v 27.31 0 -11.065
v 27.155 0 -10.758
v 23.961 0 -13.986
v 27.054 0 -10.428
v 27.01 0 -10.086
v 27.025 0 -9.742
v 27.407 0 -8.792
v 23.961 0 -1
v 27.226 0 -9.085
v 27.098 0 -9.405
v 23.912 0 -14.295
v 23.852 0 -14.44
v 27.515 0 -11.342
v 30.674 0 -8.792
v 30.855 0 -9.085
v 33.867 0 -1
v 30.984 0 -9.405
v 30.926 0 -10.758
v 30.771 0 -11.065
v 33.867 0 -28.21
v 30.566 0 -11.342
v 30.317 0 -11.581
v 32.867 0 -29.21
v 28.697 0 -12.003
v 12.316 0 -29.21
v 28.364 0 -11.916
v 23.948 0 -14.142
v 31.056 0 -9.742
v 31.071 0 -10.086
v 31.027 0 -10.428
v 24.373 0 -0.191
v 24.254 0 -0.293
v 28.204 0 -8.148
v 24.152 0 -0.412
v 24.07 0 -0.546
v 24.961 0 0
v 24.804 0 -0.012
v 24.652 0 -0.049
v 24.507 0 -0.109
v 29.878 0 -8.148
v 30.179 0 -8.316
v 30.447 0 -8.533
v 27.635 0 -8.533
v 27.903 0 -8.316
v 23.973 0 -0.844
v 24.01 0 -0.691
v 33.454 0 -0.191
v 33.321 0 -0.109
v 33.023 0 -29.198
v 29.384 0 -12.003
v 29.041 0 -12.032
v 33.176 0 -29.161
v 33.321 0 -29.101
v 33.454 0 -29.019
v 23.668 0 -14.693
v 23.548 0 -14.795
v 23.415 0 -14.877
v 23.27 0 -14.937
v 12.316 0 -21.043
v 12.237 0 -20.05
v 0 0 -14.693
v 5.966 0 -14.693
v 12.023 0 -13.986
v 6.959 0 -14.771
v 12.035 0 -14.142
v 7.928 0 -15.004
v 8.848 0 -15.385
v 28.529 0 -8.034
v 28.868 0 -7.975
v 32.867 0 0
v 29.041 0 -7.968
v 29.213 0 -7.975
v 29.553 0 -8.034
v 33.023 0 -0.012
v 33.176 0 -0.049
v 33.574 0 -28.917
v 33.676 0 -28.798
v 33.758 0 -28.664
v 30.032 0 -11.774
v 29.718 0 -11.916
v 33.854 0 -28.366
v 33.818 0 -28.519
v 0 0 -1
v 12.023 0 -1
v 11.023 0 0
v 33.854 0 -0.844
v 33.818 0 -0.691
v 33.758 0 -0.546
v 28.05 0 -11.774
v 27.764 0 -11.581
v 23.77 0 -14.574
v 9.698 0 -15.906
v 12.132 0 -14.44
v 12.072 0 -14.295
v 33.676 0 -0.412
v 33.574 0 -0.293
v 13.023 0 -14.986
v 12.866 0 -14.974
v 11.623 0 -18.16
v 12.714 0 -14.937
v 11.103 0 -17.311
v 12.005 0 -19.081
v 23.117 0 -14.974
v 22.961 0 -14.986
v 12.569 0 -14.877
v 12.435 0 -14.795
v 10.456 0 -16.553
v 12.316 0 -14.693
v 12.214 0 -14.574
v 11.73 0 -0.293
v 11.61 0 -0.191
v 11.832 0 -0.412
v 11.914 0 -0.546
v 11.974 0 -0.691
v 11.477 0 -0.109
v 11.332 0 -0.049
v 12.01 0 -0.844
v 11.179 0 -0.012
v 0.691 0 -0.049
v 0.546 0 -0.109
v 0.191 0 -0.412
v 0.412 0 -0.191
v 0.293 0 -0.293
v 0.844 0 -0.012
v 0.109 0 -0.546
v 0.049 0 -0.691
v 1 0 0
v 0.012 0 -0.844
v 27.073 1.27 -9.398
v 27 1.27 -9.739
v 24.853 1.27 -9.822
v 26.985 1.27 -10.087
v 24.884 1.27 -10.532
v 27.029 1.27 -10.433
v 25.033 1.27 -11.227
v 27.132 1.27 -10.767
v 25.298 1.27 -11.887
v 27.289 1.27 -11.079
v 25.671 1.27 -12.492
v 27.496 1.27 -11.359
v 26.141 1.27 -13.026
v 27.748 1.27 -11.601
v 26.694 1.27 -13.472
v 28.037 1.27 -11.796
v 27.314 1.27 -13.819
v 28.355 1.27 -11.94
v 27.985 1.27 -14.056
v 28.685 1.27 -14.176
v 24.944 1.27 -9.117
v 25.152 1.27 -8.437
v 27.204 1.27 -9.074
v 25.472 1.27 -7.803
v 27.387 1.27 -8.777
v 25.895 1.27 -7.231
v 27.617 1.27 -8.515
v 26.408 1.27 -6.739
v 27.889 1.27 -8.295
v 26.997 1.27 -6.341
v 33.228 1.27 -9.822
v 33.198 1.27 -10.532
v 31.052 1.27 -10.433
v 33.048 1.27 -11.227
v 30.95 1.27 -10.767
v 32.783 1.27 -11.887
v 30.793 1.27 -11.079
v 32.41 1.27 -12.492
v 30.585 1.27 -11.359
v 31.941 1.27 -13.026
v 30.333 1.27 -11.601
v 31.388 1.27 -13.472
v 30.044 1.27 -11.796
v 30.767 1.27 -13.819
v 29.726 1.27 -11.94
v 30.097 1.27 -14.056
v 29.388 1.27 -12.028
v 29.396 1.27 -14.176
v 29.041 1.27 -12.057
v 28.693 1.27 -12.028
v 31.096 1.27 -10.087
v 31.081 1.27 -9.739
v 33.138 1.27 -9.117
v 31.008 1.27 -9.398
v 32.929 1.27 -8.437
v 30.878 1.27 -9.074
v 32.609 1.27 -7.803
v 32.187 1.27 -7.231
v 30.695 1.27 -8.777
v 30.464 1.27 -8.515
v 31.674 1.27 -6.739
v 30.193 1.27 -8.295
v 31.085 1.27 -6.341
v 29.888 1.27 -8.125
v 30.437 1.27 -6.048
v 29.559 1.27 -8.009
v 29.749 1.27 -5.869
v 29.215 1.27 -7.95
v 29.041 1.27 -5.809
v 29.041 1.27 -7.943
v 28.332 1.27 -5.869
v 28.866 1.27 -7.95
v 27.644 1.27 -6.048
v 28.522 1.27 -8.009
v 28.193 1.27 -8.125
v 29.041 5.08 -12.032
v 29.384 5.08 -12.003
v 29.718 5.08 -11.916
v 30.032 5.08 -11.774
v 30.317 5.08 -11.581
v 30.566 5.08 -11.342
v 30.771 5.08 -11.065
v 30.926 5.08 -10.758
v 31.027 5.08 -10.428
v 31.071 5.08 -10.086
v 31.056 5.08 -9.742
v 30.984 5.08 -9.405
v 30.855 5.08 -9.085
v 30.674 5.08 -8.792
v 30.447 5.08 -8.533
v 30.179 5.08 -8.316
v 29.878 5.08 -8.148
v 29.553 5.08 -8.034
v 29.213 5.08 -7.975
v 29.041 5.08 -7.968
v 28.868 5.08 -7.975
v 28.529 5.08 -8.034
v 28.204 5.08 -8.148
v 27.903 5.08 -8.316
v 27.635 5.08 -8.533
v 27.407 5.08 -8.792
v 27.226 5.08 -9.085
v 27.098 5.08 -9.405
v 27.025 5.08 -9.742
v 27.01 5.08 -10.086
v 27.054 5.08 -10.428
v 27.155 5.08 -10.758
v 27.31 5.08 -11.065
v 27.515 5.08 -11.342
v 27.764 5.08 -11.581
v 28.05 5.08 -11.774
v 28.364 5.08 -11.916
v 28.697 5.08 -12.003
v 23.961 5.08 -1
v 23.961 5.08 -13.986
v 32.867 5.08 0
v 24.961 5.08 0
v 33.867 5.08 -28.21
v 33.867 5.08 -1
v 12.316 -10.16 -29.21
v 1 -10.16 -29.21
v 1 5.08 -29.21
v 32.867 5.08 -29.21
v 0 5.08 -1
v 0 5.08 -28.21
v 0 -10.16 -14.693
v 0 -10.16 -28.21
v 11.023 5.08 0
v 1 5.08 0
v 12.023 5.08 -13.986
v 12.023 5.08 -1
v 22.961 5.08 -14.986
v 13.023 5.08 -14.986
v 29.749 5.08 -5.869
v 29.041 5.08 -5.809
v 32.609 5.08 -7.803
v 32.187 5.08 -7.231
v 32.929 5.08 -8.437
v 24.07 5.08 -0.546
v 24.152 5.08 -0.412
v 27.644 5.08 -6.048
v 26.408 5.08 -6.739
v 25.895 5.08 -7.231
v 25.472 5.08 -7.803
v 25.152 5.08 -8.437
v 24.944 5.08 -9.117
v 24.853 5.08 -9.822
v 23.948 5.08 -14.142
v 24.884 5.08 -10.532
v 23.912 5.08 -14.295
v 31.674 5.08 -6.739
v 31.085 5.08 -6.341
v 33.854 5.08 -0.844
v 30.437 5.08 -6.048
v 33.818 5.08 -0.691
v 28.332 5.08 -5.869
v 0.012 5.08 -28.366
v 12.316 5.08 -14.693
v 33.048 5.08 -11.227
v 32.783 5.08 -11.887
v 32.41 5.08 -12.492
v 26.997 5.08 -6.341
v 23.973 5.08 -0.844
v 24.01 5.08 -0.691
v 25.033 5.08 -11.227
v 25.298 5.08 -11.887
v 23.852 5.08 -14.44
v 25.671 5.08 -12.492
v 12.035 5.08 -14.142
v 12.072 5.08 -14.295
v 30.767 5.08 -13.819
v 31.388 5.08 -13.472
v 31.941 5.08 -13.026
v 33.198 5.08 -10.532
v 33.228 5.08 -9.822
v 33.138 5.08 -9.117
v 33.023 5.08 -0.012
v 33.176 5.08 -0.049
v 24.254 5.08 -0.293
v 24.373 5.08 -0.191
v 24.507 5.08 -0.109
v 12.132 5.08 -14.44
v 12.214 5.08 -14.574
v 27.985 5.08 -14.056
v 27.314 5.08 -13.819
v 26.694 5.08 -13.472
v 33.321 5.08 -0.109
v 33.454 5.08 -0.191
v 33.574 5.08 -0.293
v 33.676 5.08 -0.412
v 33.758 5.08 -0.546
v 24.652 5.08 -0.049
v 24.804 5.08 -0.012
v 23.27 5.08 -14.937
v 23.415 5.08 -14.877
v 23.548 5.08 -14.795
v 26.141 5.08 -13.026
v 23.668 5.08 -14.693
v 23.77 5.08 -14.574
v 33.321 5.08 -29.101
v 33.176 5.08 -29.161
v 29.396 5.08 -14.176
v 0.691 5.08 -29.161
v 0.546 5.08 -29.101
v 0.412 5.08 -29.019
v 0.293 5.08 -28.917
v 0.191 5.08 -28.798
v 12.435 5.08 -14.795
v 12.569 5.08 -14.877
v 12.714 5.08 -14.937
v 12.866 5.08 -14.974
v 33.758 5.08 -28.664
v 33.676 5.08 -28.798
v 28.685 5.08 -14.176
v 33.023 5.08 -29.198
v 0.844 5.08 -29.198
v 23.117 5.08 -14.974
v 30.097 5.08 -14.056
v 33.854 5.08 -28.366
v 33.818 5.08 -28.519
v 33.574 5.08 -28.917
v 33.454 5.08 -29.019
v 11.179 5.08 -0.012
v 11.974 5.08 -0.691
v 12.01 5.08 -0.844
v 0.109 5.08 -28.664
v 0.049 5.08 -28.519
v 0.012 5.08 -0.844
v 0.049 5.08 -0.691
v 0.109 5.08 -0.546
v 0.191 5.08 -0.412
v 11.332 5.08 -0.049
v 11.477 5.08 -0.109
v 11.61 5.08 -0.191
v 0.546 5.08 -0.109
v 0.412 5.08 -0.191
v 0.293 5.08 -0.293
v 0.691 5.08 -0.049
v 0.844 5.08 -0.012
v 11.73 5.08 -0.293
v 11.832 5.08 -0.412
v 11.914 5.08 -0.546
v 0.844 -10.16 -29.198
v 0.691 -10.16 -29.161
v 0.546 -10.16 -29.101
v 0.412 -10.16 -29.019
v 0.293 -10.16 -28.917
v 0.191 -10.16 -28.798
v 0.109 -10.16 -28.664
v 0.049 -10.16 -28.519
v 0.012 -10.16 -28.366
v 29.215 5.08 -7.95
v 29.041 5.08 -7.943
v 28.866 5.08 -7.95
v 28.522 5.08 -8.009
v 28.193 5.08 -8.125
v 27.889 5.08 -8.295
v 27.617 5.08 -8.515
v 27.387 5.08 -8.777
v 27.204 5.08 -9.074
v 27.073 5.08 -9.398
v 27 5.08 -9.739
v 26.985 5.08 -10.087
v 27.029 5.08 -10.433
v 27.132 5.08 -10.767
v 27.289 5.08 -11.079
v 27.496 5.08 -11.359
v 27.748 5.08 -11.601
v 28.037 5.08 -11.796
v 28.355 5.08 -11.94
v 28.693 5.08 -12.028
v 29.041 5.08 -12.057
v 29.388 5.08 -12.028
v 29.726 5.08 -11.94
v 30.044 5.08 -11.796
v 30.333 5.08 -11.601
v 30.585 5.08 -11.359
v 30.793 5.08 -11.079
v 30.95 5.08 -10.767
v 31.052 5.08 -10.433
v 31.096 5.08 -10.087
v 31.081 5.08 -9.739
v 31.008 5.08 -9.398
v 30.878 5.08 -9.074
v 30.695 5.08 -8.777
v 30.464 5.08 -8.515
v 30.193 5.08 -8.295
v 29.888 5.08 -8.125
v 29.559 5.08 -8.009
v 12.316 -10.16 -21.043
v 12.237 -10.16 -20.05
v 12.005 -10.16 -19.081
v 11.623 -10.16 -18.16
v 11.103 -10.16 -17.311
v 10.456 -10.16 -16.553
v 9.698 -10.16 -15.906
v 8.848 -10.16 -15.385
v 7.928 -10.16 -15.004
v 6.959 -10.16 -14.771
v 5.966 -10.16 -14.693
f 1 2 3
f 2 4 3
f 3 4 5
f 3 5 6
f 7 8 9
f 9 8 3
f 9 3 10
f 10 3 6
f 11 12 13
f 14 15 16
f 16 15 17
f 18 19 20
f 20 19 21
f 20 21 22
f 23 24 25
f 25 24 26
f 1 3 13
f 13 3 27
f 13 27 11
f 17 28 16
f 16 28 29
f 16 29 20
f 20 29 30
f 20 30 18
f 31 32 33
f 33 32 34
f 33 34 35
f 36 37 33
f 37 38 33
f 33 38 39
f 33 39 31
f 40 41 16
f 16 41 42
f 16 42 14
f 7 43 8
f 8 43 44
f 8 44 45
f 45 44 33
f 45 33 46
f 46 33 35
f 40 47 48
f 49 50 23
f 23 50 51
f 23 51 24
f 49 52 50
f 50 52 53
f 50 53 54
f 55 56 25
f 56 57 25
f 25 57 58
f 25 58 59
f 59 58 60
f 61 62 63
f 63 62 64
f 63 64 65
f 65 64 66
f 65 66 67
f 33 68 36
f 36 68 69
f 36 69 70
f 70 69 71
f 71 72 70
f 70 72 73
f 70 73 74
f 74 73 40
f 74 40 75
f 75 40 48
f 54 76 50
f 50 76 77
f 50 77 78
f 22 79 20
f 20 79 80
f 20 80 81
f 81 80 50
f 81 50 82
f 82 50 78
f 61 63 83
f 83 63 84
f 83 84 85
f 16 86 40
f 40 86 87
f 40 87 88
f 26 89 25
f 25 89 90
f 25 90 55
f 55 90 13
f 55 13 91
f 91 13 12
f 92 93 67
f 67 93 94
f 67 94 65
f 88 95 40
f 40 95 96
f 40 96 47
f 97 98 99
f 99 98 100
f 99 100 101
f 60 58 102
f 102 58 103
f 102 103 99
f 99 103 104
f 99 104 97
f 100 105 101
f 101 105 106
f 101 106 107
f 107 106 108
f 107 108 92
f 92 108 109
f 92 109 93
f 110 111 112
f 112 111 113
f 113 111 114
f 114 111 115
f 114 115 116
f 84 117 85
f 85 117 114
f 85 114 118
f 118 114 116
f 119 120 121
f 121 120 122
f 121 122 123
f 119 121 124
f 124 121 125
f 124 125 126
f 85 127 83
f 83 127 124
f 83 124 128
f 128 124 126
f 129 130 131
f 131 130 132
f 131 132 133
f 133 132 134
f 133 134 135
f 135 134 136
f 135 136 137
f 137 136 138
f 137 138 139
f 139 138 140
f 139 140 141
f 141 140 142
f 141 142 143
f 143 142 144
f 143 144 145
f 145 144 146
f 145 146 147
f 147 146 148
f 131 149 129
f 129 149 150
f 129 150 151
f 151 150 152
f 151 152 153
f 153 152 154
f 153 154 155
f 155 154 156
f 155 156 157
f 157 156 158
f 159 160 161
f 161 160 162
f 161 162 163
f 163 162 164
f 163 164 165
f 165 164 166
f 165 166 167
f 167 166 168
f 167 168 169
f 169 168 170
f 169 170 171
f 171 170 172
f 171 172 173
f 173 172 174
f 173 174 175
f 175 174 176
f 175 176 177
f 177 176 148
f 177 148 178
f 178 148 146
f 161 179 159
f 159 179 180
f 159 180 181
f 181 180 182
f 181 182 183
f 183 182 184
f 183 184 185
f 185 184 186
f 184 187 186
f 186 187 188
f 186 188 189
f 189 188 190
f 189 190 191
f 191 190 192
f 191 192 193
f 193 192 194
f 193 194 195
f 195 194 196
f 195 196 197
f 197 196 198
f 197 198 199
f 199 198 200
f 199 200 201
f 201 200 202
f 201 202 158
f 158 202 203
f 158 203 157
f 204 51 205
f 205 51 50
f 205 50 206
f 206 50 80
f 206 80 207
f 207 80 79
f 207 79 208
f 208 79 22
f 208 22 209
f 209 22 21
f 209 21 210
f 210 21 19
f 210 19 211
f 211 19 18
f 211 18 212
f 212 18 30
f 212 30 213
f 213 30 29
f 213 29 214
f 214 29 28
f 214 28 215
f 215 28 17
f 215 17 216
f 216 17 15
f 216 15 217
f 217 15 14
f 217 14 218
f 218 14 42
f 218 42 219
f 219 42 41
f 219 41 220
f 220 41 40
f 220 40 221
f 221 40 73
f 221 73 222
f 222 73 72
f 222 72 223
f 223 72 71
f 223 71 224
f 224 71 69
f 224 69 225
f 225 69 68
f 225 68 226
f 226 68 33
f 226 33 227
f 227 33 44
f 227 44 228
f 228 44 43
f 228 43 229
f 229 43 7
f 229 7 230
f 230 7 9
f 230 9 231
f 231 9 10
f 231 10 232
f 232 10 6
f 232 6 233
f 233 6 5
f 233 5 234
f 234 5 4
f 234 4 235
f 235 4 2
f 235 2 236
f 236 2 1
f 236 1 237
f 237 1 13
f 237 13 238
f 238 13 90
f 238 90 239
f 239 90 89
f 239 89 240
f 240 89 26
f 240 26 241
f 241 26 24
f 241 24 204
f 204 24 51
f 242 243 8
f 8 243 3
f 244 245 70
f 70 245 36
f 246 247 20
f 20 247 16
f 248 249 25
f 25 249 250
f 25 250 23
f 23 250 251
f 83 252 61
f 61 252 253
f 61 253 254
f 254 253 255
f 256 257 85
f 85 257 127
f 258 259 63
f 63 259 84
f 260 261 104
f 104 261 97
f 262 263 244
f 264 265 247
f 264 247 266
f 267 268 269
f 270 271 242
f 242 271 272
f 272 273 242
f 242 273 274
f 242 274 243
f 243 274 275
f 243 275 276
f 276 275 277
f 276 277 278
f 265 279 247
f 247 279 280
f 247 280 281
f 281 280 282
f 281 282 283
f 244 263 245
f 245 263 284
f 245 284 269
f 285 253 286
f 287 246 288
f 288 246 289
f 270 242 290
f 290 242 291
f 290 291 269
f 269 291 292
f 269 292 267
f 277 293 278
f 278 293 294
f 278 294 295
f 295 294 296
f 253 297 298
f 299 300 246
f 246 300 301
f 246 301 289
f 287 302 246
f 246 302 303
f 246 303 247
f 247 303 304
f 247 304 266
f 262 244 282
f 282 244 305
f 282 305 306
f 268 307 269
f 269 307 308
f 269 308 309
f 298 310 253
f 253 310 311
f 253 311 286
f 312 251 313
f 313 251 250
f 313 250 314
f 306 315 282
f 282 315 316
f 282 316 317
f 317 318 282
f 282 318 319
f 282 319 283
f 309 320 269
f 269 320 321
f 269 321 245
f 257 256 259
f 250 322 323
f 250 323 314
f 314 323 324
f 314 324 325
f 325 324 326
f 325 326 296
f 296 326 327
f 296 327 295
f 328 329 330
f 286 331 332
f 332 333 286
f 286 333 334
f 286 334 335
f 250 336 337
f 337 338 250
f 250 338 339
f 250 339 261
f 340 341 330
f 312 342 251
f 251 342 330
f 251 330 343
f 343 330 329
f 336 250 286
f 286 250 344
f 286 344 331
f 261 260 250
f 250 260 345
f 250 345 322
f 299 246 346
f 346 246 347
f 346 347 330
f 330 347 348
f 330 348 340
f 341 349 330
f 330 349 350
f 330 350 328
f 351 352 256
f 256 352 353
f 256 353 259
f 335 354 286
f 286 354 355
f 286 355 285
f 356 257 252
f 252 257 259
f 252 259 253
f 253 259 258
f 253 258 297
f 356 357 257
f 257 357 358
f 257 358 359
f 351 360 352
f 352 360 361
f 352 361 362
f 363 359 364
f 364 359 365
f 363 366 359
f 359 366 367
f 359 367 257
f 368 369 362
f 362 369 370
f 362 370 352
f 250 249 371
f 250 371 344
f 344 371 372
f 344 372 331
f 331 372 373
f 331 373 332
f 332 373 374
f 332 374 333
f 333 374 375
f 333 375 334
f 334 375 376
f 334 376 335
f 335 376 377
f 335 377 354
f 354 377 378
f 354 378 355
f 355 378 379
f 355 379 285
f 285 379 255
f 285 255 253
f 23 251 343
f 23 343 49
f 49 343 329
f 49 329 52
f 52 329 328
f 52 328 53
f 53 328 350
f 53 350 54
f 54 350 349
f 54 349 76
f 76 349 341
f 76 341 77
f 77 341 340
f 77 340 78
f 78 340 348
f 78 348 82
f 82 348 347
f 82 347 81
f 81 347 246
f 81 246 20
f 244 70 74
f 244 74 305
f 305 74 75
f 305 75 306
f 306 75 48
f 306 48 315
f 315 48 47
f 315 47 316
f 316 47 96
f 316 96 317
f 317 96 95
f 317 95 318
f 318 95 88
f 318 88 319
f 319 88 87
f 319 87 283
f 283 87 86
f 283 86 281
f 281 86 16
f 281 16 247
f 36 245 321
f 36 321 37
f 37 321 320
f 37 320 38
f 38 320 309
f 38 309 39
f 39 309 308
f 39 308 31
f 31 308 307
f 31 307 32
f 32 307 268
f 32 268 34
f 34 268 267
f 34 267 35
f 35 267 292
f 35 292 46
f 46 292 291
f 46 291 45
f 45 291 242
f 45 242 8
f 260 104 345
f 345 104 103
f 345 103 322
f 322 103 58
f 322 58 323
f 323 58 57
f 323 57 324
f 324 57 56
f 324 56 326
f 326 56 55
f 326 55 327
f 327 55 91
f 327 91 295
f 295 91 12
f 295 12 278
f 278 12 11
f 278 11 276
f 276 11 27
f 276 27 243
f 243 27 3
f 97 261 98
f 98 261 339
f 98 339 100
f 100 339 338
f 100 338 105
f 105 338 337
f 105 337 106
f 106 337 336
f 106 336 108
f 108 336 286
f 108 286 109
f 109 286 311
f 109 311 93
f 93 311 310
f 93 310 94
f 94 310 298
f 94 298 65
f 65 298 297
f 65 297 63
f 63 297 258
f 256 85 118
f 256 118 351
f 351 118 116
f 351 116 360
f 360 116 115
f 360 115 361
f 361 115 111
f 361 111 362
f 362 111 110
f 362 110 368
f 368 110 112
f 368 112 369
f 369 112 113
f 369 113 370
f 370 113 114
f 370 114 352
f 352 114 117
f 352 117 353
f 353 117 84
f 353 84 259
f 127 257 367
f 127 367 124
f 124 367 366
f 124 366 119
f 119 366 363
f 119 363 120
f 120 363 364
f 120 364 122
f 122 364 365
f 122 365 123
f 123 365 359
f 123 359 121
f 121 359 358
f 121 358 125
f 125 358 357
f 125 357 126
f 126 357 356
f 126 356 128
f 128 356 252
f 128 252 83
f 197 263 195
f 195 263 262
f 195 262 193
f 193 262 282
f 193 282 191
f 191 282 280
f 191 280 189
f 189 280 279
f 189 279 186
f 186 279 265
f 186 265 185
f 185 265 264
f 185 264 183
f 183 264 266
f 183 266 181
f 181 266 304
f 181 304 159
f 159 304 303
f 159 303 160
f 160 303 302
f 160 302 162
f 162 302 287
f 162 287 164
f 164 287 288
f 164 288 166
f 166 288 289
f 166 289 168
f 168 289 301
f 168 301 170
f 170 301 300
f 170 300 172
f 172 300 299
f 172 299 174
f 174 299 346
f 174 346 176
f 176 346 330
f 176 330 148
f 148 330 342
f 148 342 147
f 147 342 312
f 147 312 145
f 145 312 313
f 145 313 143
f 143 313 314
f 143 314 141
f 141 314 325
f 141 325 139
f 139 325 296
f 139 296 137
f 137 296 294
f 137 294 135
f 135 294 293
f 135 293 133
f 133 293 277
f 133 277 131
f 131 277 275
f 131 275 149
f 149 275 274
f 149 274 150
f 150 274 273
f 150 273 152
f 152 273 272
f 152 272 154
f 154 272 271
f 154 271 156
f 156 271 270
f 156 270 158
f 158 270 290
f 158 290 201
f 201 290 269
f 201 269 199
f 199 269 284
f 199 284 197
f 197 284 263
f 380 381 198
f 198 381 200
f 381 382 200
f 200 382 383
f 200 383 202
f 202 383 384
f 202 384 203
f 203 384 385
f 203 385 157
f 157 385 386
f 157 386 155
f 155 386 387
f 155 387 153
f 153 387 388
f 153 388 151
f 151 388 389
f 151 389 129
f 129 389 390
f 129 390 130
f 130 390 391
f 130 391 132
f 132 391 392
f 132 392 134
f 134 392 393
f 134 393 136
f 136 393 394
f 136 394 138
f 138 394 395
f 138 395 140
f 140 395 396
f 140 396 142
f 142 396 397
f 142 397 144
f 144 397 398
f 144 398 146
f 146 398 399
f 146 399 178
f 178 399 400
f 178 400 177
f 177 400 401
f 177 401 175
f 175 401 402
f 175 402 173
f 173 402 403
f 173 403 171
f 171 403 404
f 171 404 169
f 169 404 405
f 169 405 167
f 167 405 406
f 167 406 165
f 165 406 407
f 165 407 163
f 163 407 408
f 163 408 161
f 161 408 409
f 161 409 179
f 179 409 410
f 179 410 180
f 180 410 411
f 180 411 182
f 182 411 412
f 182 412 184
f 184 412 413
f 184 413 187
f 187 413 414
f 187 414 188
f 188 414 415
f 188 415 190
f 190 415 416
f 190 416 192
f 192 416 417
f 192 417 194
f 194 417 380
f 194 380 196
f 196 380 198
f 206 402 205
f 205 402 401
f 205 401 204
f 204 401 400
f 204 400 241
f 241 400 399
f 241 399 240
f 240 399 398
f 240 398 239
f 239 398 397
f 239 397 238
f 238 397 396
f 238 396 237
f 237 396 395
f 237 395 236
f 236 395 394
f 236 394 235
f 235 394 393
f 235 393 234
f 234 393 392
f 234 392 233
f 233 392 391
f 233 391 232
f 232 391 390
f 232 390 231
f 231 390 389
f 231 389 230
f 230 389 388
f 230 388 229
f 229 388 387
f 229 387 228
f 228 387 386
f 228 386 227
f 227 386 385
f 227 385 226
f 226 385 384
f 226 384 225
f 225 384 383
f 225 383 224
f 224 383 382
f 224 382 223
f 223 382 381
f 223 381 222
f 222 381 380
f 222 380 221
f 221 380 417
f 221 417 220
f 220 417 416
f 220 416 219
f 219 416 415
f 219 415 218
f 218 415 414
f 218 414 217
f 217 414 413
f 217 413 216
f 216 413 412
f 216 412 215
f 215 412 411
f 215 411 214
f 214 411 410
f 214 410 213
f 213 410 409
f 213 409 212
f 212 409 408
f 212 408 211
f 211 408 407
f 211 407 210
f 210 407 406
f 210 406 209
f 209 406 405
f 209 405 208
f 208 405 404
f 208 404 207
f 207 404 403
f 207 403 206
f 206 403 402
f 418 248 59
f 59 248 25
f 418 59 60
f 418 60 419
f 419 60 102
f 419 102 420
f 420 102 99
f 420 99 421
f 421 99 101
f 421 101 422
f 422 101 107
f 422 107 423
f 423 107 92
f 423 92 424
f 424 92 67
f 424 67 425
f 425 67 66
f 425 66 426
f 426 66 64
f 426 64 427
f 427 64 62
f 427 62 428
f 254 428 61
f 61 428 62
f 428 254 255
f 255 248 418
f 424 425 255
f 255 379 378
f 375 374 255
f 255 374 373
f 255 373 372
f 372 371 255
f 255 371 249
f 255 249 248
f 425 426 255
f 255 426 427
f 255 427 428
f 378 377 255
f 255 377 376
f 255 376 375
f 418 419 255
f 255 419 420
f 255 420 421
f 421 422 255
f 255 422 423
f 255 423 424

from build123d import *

# Parameters (mm, degrees)
SKETCH1_R           = 2.032
BOSS_EXTRUDE1_DEPTH = 5.08
FILLET2_R           = 1
SKETCH4_R           = 4.191
CUT_EXTRUDE3_DEPTH  = 3.81
SKETCH5_R           = 2.0574
SKETCH5_R_2         = 2.032
BOSS_EXTRUDE2_DEPTH = 3.81
BOSS_EXTRUDE3_DEPTH = 10.16


with BuildPart() as part:
    # Sketch1 → Boss-Extrude1 (new body)
    with BuildSketch(Plane(origin=(0, 0, 0), x_dir=(1, 0, 0), z_dir=(0, 1, 0))):
        Polygon((0, 29.21), (0, 0), (12.022666667, 0), (12.022666667, 14.986), (23.960666667, 14.986), (23.960666667, 0), (33.866666667, 0), (33.866666667, 29.21), align=None)
        with Locations((29.040666667, 10)):
            Circle(SKETCH1_R, mode=Mode.SUBTRACT)
    extrude(amount=BOSS_EXTRUDE1_DEPTH)

    # Fillet2
    fillet2_edges = [part.edges().sort_by_distance(p)[0] for p in [
        (23.960666667, 2.54, -14.986),
        (12.022666667, 2.54, -14.986),
        (12.022666667, 2.54, 0),
        (0, 2.54, 0),
        (0, 2.54, -29.21),
        (33.866666667, 2.54, -29.21),
        (33.866666667, 2.54, 0),
        (23.960666667, 2.54, 0),
    ]]
    fillet(fillet2_edges, radius=FILLET2_R)

    # Sketch4 → Cut-Extrude3 (cut)
    with BuildSketch(Plane(origin=(0, 5.08, 0), x_dir=(1, 0, 0), z_dir=(0, 1, 0))):
        with Locations((29.040666667, 10)):
            Circle(SKETCH4_R)
    extrude(amount=-CUT_EXTRUDE3_DEPTH, mode=Mode.SUBTRACT)

    # Sketch5 → Boss-Extrude2 (add)
    with BuildSketch(Plane(origin=(0, 1.27, 0), x_dir=(1, 0, 0), z_dir=(0, 1, 0))):
        with Locations((29.040666667, 10)):
            Circle(SKETCH5_R)
        with Locations((29.040666667, 10)):
            Circle(SKETCH5_R_2, mode=Mode.SUBTRACT)
    extrude(amount=BOSS_EXTRUDE2_DEPTH)

    # Sketch6 → Boss-Extrude3 (add)
    with BuildSketch(Plane.XZ):
        with BuildLine():
            Line((1, -29.21), (12.315559885, -29.21))
            Line((12.315559885, -29.21), (12.315559885, -21.043106781))
            ThreePointArc((12.315559885, -21.043106781), (10.455687946, -16.552978721), (5.965559885, -14.693106781))
            Line((5.965559885, -14.693106781), (0, -14.693106781))
            Line((0, -14.693106781), (0, -28.21))
            ThreePointArc((0, -28.21), (0.292893219, -28.917106781), (1, -29.21))
        make_face()
    extrude(amount=BOSS_EXTRUDE3_DEPTH)


solid = part.part
